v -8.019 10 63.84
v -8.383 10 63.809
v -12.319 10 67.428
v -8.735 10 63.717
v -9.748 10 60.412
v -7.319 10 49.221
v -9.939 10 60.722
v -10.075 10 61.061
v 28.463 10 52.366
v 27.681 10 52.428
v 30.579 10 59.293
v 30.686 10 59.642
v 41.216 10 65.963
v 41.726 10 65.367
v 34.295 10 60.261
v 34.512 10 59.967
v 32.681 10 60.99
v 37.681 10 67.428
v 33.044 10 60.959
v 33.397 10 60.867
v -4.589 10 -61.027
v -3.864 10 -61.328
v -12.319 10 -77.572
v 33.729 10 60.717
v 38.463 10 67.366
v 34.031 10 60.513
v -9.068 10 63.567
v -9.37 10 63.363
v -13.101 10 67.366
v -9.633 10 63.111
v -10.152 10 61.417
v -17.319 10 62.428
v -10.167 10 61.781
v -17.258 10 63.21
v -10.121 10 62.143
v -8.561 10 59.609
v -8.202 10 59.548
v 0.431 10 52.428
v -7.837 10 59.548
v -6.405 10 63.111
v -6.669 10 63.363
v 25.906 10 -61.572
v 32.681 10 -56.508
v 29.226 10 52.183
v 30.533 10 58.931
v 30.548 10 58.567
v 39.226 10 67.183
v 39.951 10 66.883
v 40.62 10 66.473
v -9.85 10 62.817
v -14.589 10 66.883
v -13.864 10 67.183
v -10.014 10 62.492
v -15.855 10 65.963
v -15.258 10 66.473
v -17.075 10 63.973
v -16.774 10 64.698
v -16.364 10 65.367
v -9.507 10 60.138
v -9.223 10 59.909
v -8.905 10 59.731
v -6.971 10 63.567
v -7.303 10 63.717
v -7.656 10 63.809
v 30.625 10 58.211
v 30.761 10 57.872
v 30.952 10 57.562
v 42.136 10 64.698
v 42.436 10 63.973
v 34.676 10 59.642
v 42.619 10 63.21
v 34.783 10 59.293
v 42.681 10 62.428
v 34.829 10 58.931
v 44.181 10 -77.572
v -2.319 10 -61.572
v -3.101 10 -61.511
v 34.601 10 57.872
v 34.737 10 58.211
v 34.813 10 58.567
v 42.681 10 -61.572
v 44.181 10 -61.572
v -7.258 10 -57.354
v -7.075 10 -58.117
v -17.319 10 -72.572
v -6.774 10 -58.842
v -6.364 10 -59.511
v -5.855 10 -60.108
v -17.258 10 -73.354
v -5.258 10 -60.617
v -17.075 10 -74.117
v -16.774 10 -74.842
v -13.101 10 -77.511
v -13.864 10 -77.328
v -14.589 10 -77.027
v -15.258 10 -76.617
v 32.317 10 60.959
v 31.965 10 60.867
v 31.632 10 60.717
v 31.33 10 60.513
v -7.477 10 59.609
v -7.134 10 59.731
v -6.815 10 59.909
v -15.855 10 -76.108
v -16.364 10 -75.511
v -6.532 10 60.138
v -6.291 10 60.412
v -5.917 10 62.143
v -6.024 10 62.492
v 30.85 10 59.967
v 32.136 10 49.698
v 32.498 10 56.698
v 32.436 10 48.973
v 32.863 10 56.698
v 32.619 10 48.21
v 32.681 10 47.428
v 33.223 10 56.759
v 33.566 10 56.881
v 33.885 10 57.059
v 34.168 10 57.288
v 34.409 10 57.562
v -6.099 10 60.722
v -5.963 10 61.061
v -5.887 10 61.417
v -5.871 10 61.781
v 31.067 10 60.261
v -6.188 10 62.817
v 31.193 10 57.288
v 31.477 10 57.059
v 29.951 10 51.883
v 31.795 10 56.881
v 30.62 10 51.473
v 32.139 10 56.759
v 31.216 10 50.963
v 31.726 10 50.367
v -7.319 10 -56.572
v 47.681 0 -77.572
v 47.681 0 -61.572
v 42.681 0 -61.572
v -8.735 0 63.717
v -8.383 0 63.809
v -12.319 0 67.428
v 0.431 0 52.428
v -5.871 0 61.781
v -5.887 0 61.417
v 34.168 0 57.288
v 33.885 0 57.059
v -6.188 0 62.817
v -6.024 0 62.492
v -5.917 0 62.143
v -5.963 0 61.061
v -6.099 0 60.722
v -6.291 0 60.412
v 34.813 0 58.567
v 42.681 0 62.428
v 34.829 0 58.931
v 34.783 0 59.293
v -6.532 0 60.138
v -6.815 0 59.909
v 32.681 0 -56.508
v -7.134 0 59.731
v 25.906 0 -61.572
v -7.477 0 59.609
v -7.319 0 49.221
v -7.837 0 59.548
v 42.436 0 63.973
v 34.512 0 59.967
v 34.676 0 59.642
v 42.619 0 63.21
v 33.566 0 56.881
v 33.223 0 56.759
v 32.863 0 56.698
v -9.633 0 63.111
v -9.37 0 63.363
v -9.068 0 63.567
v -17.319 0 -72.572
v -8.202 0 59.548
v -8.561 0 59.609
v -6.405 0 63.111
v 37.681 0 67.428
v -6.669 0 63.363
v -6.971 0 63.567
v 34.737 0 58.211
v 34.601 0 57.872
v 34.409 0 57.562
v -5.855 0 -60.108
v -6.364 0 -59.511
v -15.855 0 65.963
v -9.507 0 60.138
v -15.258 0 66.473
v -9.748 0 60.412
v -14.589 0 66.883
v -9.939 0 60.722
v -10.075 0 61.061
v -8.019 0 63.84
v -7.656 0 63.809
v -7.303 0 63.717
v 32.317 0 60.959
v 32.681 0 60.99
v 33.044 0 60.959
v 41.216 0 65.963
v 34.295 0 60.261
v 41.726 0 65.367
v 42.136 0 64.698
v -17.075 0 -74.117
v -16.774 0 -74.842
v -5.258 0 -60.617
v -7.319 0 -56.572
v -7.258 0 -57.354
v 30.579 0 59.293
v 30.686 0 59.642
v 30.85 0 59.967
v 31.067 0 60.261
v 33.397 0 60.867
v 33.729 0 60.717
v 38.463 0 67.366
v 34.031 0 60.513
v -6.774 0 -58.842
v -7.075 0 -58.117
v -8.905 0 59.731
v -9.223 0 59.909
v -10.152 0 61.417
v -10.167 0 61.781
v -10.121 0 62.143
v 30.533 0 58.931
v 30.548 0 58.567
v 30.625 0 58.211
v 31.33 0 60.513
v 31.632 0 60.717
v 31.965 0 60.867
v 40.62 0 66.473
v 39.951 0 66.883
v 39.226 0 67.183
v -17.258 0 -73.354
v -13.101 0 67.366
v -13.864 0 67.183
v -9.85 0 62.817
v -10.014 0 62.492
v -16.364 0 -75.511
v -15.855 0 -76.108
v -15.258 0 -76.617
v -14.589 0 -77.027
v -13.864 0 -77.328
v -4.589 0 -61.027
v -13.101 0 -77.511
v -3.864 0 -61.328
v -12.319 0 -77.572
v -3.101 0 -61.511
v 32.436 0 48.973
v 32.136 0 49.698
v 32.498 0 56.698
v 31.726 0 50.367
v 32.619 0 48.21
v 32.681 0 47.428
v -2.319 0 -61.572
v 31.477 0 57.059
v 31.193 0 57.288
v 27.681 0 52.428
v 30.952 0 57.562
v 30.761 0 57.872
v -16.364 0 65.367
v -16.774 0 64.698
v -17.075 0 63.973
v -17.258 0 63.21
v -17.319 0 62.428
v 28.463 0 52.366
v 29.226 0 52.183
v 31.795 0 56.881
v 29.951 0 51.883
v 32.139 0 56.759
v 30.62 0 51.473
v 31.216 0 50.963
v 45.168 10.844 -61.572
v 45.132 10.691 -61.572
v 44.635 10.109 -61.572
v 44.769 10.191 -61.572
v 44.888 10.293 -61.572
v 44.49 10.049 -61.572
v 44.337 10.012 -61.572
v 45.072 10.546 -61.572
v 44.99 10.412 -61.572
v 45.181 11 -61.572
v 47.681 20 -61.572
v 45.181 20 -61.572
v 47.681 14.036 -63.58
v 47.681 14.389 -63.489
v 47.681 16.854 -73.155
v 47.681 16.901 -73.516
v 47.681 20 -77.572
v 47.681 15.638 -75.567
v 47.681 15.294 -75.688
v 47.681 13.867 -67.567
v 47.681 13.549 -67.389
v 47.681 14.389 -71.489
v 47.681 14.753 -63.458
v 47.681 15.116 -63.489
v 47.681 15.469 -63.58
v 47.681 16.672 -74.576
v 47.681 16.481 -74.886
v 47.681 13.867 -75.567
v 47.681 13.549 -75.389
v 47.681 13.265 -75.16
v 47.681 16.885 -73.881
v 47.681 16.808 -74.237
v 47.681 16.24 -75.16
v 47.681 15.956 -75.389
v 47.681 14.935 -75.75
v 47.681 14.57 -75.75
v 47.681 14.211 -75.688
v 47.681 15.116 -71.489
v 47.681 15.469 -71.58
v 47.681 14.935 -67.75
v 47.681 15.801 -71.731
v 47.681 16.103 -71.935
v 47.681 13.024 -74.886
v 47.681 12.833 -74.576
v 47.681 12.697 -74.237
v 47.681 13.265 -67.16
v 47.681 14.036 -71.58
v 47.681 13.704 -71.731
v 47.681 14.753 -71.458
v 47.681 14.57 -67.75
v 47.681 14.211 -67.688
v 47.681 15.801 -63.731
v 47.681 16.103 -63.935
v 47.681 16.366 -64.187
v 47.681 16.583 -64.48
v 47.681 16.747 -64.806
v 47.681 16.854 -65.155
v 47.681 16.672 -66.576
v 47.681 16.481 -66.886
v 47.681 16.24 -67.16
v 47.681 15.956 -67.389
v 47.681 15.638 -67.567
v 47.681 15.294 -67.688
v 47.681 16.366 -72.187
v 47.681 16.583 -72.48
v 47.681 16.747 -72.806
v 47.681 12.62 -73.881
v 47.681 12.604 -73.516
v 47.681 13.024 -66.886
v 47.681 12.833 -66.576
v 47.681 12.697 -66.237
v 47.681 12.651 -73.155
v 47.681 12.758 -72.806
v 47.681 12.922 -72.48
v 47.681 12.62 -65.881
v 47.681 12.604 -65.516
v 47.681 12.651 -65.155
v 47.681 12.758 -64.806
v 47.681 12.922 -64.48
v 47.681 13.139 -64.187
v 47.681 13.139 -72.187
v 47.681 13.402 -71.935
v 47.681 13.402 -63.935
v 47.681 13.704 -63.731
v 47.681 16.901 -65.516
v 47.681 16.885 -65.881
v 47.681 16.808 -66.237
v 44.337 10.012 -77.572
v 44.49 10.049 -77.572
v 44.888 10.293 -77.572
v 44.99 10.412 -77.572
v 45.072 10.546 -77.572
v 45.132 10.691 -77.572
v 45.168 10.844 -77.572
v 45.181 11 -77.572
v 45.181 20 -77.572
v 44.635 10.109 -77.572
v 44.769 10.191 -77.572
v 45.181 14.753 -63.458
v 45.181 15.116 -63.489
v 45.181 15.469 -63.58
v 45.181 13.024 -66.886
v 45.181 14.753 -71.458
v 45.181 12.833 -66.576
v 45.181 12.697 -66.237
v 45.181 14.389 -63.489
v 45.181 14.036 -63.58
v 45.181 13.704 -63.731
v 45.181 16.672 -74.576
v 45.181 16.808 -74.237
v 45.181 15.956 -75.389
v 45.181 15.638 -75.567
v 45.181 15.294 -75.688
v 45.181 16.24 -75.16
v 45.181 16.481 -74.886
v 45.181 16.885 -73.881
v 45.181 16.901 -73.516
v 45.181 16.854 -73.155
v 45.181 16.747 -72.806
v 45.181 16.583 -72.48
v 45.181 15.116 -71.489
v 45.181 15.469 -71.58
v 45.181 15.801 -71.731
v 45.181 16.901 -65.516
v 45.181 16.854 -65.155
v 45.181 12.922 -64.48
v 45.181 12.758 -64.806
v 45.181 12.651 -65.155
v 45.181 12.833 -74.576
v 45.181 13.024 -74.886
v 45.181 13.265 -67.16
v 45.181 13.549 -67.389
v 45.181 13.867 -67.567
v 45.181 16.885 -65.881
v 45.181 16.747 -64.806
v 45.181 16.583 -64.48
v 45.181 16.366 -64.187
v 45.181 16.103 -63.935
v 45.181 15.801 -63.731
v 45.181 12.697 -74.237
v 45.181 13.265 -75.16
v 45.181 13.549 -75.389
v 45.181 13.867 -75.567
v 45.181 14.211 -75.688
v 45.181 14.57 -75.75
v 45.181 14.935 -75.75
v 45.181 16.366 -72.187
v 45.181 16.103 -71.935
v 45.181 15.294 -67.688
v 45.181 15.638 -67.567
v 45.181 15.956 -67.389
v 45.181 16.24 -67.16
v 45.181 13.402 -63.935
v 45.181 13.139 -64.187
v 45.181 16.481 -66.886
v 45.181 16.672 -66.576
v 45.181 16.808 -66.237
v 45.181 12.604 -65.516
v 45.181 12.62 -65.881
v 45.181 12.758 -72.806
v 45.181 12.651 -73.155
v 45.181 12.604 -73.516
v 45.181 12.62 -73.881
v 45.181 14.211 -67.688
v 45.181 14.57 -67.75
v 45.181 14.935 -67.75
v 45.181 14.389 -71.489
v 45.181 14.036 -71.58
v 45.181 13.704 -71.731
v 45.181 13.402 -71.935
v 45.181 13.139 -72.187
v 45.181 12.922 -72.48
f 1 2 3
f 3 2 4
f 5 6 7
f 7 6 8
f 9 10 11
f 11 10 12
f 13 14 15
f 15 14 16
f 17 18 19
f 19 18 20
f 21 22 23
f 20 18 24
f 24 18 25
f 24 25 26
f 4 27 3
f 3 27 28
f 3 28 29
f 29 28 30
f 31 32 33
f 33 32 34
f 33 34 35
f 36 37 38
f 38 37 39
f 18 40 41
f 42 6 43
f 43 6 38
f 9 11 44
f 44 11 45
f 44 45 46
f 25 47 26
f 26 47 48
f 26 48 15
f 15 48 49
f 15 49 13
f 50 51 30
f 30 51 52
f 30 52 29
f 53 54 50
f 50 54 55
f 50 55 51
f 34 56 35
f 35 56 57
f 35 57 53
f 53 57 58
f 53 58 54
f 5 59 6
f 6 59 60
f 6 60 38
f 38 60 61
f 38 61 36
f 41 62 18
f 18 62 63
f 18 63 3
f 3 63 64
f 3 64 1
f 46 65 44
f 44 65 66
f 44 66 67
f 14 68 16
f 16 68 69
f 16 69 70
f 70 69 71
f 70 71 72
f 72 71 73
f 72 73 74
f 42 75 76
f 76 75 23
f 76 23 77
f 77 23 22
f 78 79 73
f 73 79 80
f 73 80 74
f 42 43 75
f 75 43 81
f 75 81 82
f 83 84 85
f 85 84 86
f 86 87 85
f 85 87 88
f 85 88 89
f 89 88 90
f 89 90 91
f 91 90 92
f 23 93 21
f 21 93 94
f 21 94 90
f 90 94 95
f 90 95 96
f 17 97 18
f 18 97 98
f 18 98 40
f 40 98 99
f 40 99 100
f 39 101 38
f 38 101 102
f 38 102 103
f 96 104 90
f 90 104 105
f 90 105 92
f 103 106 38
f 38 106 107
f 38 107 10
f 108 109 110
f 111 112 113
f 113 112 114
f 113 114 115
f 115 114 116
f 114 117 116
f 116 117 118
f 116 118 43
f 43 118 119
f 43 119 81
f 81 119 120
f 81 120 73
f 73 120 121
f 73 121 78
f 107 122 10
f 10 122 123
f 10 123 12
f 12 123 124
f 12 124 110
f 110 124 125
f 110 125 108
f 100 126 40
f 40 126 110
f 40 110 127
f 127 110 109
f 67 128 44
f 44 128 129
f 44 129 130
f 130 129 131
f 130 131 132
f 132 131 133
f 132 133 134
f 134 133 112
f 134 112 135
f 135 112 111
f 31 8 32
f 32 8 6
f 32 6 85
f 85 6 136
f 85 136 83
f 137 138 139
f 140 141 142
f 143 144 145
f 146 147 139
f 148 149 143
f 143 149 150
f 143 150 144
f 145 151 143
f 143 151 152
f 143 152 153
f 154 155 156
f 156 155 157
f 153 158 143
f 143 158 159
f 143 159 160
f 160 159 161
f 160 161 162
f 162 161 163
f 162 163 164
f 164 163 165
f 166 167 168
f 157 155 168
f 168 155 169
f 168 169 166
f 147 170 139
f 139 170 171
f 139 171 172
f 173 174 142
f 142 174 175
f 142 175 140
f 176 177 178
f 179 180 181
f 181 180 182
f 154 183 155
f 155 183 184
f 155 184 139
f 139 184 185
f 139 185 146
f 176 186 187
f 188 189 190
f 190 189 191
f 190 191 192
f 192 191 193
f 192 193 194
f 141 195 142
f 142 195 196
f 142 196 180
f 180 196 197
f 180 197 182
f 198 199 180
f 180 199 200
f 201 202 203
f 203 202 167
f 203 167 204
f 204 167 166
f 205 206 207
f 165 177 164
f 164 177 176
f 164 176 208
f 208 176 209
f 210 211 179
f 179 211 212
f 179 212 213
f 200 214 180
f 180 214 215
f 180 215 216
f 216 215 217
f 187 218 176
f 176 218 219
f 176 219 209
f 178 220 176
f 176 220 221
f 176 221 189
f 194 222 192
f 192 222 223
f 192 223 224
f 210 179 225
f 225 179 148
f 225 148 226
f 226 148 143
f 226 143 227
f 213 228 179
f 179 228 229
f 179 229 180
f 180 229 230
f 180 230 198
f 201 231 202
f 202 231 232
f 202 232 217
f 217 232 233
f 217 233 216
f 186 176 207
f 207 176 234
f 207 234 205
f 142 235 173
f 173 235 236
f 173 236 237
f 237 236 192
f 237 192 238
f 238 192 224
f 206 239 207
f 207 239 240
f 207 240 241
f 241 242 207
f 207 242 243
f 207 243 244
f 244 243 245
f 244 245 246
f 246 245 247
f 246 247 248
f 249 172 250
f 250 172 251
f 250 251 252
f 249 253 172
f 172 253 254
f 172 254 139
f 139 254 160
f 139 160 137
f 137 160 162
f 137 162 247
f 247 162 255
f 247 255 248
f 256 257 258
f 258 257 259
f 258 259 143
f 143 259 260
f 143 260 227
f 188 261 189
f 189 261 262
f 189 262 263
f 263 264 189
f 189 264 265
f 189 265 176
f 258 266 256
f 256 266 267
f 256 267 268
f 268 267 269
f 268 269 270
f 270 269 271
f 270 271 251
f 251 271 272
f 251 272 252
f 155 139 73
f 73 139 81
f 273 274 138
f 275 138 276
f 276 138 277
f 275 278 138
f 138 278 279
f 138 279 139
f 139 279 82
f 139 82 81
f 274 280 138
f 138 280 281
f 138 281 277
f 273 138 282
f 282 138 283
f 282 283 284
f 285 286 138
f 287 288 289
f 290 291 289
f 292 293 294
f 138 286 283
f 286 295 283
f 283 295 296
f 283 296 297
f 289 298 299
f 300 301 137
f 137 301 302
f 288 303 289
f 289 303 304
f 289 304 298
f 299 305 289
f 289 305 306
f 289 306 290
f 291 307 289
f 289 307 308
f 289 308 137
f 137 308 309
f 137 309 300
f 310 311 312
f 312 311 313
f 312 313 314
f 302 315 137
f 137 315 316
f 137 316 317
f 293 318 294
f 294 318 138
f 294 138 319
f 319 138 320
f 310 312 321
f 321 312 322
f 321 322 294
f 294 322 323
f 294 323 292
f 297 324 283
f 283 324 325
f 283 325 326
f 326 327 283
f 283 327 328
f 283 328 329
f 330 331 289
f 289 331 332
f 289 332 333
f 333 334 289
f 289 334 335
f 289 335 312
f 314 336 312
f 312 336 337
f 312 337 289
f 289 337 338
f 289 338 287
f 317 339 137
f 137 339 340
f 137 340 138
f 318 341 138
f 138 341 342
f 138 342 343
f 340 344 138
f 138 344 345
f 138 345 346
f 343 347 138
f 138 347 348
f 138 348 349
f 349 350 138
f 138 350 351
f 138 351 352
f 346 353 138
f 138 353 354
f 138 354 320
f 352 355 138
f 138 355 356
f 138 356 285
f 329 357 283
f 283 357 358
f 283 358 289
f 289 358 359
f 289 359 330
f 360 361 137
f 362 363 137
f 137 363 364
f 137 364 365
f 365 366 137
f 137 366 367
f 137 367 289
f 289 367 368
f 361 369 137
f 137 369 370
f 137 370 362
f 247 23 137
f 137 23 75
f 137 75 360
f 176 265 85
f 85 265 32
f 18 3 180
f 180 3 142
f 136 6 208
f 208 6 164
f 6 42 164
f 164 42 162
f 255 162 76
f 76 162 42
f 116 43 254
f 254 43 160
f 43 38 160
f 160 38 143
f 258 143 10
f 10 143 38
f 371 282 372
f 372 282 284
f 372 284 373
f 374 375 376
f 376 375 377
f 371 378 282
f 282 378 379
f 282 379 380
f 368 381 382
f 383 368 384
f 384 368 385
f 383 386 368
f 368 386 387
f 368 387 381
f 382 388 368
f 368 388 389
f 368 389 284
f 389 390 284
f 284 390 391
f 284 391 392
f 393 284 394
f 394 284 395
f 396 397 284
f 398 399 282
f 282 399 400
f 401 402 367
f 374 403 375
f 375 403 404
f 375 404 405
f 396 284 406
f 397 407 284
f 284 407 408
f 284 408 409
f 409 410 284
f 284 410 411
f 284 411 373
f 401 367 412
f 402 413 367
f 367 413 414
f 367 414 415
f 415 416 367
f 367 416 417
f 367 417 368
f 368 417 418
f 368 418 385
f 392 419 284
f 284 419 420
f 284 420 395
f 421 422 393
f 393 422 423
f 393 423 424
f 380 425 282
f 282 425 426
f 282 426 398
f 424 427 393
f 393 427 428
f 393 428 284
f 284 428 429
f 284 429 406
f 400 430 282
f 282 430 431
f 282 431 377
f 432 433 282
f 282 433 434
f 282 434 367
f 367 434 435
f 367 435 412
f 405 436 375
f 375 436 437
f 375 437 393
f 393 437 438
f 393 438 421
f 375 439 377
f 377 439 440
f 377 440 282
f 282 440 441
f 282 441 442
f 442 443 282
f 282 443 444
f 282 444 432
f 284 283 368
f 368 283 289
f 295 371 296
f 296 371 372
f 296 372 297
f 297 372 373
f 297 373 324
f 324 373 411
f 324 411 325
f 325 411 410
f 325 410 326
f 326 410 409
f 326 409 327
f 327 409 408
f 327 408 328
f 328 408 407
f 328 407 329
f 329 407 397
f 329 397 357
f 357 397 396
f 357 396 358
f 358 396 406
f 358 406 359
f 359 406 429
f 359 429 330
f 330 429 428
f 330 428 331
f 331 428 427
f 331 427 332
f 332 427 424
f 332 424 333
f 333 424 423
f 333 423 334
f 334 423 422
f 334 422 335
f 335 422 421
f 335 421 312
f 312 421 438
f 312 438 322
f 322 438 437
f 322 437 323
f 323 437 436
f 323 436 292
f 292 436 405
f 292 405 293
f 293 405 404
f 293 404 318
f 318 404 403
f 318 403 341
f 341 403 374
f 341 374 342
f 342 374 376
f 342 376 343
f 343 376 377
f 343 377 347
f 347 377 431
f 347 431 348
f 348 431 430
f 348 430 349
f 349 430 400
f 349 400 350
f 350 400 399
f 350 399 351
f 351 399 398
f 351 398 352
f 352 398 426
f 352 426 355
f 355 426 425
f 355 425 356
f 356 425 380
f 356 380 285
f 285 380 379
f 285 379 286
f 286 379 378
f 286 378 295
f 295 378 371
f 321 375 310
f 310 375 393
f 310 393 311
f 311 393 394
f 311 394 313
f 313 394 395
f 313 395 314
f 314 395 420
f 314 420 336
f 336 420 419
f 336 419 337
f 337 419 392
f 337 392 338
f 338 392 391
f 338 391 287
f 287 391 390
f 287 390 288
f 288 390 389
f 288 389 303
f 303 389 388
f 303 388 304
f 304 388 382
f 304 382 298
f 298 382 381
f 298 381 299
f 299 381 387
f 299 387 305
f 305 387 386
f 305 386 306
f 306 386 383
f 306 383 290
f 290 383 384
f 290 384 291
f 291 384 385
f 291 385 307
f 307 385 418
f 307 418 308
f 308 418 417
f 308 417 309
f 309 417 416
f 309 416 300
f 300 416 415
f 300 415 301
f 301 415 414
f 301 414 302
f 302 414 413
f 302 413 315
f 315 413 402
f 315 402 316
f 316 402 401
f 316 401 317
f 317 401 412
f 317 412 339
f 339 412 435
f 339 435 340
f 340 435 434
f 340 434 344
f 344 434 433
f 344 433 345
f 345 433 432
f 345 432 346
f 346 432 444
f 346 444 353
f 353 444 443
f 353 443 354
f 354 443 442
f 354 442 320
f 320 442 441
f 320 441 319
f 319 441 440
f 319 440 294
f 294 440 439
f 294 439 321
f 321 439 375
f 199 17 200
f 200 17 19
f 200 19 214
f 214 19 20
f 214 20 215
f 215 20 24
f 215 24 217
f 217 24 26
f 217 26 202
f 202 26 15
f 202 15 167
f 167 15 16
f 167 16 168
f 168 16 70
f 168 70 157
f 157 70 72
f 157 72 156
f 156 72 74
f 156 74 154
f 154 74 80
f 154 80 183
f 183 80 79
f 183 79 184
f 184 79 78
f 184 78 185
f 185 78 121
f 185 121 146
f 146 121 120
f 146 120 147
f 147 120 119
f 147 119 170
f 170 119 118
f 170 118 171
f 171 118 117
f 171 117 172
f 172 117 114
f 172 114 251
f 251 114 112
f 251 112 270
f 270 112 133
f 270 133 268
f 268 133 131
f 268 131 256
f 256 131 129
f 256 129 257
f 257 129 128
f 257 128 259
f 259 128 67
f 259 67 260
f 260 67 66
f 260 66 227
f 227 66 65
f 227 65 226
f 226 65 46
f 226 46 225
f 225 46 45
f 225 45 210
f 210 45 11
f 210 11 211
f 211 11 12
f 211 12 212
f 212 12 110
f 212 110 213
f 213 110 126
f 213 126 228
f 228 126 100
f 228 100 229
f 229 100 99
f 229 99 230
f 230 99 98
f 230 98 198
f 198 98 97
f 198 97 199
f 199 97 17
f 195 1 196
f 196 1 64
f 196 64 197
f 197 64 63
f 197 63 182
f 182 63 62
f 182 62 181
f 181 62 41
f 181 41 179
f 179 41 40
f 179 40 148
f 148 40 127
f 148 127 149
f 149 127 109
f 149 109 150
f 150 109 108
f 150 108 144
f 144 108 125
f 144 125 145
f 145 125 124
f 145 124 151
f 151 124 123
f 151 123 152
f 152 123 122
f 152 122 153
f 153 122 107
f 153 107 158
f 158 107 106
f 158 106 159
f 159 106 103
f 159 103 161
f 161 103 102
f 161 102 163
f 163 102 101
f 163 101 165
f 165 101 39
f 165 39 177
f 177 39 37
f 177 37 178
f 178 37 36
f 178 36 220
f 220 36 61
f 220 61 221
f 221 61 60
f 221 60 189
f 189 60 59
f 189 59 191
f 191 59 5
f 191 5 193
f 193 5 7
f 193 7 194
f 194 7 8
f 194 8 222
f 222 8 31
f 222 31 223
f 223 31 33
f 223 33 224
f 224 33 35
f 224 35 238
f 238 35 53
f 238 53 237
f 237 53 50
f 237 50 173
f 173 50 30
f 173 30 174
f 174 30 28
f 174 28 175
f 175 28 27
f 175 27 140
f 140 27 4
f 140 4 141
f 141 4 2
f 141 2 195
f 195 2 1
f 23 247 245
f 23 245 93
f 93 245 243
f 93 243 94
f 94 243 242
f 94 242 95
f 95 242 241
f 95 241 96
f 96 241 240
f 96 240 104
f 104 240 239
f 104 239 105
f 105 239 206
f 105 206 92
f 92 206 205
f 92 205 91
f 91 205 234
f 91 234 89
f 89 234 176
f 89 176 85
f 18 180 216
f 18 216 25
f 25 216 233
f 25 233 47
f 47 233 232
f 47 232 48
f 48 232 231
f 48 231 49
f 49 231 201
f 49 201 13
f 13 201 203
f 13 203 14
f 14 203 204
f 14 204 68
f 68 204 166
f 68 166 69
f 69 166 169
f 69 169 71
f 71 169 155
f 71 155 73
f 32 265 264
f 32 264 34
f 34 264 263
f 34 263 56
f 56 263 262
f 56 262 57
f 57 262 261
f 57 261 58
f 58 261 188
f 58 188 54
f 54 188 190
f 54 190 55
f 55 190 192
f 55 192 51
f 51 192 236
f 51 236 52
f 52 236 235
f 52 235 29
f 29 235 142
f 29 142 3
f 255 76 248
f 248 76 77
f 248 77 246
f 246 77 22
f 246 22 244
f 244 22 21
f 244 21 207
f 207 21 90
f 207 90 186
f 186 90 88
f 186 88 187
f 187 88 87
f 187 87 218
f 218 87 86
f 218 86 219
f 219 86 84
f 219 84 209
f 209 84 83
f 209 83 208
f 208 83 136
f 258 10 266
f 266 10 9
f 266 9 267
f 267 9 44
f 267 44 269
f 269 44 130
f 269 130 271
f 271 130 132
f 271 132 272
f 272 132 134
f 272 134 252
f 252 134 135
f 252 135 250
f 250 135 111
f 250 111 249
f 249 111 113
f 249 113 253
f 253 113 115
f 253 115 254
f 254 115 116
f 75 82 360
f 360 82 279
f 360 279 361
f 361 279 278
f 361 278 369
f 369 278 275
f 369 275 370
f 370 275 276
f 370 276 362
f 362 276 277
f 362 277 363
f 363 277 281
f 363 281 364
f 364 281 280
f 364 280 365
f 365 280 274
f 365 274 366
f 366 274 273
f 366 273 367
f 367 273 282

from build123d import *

# Parameters (mm, degrees)
EXTRUDE_1_DEPTH     = 10
SKETCH_4_W          = 2.5
SKETCH_4_H          = 16
EXTRUDE_2_DEPTH     = 10
CUT_EXTRUDE_1_REACH = 103.606
SKETCH_5_R          = 2.15
CUT_EXTRUDE_2_REACH = 93.602
SKETCH_6_R          = 2.15
FILLET_1_R          = 5
FILLET_2_R          = 5
FILLET_3_R          = 1


with BuildPart() as part:
    # 草图1 → 凸台-拉伸1 (new body)
    with BuildSketch(Plane(origin=(0, 0, 0), x_dir=(1, 0, 0), z_dir=(0, 1, 0))):
        Polygon((0.431150433, 77.572237736), (47.680774799, 77.572237736), (47.680774799, 61.572237736), (42.680774799, 61.572237736), (42.680774799, 31.757290204), (42.680774799, -57.600660719), (42.680774799, -67.427762264), (0.431150433, -67.427762264), (-17.319225201, -67.427762264), (-17.319225201, 77.572237736), align=None)
        Polygon((25.906315323, 61.572237736), (-7.319225201, 61.572237736), (-7.319225201, -49.220735683), align=None, mode=Mode.SUBTRACT)
        Polygon((0.431150433, -52.427762264), (32.680774799, -52.427762264), (32.680774799, 56.508121895), align=None, mode=Mode.SUBTRACT)
    extrude(amount=EXTRUDE_1_DEPTH)

    # 草图4 → 凸台-拉伸2 (add)
    with BuildSketch(Plane(origin=(0, 10, 0), x_dir=(1, 0, 0), z_dir=(0, 1, 0))):
        with Locations((46.430774799, 69.572237736)):
            Rectangle(SKETCH_4_W, SKETCH_4_H)
    extrude(amount=EXTRUDE_2_DEPTH)

    # 草图5 → 切除-拉伸1 (cut, up to next)
    with BuildSketch(Plane.ZY.offset(-45.180774799), mode=Mode.PRIVATE) as cut_extrude_1_sk1:
        with Locations((-73.607625165, 14.752522231)):
            Circle(SKETCH_5_R)
    cut_extrude_1_tool1 = extrude(cut_extrude_1_sk1.sketch, amount=-CUT_EXTRUDE_1_REACH, mode=Mode.PRIVATE) & part.part
    # 草图5 → 切除-拉伸1 (cut, up to next)
    with BuildSketch(Plane.ZY.offset(-45.180774799), mode=Mode.PRIVATE) as cut_extrude_1_sk2:
        with Locations((-65.607625165, 14.752522231)):
            Circle(SKETCH_5_R)
    cut_extrude_1_tool2 = extrude(cut_extrude_1_sk2.sketch, amount=-CUT_EXTRUDE_1_REACH, mode=Mode.PRIVATE) & part.part
    add(cut_extrude_1_tool1.solids().sort_by_distance((45.180775, 14.752522, -73.607625))[0], mode=Mode.SUBTRACT)
    add(cut_extrude_1_tool2.solids().sort_by_distance((45.180775, 14.752522, -65.607625))[0], mode=Mode.SUBTRACT)

    # 草图6 → 切除-拉伸2 (cut, up to next)
    with BuildSketch(Plane(origin=(0, 10, 0), x_dir=(1, 0, 0), z_dir=(0, 1, 0)), mode=Mode.PRIVATE) as cut_extrude_2_sk1:
        with Locations(Location((-8.019225201, -61.690086649, 0), (0, 0, 270))):
            Circle(SKETCH_6_R)
    cut_extrude_2_tool1 = extrude(cut_extrude_2_sk1.sketch, amount=-CUT_EXTRUDE_2_REACH, mode=Mode.PRIVATE) & part.part
    # 草图6 → 切除-拉伸2 (cut, up to next)
    with BuildSketch(Plane(origin=(0, 10, 0), x_dir=(1, 0, 0), z_dir=(0, 1, 0)), mode=Mode.PRIVATE) as cut_extrude_2_sk2:
        with Locations(Location((32.680774799, -58.840086649, 0), (0, 0, 270))):
            Circle(SKETCH_6_R)
    cut_extrude_2_tool2 = extrude(cut_extrude_2_sk2.sketch, amount=-CUT_EXTRUDE_2_REACH, mode=Mode.PRIVATE) & part.part
    add(cut_extrude_2_tool1.solids().sort_by_distance((-8.019225, 10, 61.690087))[0], mode=Mode.SUBTRACT)
    add(cut_extrude_2_tool2.solids().sort_by_distance((32.680775, 10, 58.840087))[0], mode=Mode.SUBTRACT)

    # 圆角1
    fillet_1_edges = [part.edges().sort_by_distance(p)[0] for p in [
        (-17.319225201, 5, 67.427762264),
        (-17.319225201, 5, -77.572237736),
        (42.680774799, 5, 67.427762264),
    ]]
    fillet(fillet_1_edges, radius=FILLET_1_R)

    # 圆角2
    fillet_2_edges = [part.edges().sort_by_distance(p)[0] for p in [
        (-7.319225201, 5, -61.572237736),
        (32.680774799, 5, 52.427762264),
    ]]
    fillet(fillet_2_edges, radius=FILLET_2_R)

    # 圆角3
    fillet_3_edges = [part.edges().sort_by_distance(p)[0] for p in [
        (45.180774799, 10, -69.572237736),
    ]]
    fillet(fillet_3_edges, radius=FILLET_3_R)


solid = part.part
